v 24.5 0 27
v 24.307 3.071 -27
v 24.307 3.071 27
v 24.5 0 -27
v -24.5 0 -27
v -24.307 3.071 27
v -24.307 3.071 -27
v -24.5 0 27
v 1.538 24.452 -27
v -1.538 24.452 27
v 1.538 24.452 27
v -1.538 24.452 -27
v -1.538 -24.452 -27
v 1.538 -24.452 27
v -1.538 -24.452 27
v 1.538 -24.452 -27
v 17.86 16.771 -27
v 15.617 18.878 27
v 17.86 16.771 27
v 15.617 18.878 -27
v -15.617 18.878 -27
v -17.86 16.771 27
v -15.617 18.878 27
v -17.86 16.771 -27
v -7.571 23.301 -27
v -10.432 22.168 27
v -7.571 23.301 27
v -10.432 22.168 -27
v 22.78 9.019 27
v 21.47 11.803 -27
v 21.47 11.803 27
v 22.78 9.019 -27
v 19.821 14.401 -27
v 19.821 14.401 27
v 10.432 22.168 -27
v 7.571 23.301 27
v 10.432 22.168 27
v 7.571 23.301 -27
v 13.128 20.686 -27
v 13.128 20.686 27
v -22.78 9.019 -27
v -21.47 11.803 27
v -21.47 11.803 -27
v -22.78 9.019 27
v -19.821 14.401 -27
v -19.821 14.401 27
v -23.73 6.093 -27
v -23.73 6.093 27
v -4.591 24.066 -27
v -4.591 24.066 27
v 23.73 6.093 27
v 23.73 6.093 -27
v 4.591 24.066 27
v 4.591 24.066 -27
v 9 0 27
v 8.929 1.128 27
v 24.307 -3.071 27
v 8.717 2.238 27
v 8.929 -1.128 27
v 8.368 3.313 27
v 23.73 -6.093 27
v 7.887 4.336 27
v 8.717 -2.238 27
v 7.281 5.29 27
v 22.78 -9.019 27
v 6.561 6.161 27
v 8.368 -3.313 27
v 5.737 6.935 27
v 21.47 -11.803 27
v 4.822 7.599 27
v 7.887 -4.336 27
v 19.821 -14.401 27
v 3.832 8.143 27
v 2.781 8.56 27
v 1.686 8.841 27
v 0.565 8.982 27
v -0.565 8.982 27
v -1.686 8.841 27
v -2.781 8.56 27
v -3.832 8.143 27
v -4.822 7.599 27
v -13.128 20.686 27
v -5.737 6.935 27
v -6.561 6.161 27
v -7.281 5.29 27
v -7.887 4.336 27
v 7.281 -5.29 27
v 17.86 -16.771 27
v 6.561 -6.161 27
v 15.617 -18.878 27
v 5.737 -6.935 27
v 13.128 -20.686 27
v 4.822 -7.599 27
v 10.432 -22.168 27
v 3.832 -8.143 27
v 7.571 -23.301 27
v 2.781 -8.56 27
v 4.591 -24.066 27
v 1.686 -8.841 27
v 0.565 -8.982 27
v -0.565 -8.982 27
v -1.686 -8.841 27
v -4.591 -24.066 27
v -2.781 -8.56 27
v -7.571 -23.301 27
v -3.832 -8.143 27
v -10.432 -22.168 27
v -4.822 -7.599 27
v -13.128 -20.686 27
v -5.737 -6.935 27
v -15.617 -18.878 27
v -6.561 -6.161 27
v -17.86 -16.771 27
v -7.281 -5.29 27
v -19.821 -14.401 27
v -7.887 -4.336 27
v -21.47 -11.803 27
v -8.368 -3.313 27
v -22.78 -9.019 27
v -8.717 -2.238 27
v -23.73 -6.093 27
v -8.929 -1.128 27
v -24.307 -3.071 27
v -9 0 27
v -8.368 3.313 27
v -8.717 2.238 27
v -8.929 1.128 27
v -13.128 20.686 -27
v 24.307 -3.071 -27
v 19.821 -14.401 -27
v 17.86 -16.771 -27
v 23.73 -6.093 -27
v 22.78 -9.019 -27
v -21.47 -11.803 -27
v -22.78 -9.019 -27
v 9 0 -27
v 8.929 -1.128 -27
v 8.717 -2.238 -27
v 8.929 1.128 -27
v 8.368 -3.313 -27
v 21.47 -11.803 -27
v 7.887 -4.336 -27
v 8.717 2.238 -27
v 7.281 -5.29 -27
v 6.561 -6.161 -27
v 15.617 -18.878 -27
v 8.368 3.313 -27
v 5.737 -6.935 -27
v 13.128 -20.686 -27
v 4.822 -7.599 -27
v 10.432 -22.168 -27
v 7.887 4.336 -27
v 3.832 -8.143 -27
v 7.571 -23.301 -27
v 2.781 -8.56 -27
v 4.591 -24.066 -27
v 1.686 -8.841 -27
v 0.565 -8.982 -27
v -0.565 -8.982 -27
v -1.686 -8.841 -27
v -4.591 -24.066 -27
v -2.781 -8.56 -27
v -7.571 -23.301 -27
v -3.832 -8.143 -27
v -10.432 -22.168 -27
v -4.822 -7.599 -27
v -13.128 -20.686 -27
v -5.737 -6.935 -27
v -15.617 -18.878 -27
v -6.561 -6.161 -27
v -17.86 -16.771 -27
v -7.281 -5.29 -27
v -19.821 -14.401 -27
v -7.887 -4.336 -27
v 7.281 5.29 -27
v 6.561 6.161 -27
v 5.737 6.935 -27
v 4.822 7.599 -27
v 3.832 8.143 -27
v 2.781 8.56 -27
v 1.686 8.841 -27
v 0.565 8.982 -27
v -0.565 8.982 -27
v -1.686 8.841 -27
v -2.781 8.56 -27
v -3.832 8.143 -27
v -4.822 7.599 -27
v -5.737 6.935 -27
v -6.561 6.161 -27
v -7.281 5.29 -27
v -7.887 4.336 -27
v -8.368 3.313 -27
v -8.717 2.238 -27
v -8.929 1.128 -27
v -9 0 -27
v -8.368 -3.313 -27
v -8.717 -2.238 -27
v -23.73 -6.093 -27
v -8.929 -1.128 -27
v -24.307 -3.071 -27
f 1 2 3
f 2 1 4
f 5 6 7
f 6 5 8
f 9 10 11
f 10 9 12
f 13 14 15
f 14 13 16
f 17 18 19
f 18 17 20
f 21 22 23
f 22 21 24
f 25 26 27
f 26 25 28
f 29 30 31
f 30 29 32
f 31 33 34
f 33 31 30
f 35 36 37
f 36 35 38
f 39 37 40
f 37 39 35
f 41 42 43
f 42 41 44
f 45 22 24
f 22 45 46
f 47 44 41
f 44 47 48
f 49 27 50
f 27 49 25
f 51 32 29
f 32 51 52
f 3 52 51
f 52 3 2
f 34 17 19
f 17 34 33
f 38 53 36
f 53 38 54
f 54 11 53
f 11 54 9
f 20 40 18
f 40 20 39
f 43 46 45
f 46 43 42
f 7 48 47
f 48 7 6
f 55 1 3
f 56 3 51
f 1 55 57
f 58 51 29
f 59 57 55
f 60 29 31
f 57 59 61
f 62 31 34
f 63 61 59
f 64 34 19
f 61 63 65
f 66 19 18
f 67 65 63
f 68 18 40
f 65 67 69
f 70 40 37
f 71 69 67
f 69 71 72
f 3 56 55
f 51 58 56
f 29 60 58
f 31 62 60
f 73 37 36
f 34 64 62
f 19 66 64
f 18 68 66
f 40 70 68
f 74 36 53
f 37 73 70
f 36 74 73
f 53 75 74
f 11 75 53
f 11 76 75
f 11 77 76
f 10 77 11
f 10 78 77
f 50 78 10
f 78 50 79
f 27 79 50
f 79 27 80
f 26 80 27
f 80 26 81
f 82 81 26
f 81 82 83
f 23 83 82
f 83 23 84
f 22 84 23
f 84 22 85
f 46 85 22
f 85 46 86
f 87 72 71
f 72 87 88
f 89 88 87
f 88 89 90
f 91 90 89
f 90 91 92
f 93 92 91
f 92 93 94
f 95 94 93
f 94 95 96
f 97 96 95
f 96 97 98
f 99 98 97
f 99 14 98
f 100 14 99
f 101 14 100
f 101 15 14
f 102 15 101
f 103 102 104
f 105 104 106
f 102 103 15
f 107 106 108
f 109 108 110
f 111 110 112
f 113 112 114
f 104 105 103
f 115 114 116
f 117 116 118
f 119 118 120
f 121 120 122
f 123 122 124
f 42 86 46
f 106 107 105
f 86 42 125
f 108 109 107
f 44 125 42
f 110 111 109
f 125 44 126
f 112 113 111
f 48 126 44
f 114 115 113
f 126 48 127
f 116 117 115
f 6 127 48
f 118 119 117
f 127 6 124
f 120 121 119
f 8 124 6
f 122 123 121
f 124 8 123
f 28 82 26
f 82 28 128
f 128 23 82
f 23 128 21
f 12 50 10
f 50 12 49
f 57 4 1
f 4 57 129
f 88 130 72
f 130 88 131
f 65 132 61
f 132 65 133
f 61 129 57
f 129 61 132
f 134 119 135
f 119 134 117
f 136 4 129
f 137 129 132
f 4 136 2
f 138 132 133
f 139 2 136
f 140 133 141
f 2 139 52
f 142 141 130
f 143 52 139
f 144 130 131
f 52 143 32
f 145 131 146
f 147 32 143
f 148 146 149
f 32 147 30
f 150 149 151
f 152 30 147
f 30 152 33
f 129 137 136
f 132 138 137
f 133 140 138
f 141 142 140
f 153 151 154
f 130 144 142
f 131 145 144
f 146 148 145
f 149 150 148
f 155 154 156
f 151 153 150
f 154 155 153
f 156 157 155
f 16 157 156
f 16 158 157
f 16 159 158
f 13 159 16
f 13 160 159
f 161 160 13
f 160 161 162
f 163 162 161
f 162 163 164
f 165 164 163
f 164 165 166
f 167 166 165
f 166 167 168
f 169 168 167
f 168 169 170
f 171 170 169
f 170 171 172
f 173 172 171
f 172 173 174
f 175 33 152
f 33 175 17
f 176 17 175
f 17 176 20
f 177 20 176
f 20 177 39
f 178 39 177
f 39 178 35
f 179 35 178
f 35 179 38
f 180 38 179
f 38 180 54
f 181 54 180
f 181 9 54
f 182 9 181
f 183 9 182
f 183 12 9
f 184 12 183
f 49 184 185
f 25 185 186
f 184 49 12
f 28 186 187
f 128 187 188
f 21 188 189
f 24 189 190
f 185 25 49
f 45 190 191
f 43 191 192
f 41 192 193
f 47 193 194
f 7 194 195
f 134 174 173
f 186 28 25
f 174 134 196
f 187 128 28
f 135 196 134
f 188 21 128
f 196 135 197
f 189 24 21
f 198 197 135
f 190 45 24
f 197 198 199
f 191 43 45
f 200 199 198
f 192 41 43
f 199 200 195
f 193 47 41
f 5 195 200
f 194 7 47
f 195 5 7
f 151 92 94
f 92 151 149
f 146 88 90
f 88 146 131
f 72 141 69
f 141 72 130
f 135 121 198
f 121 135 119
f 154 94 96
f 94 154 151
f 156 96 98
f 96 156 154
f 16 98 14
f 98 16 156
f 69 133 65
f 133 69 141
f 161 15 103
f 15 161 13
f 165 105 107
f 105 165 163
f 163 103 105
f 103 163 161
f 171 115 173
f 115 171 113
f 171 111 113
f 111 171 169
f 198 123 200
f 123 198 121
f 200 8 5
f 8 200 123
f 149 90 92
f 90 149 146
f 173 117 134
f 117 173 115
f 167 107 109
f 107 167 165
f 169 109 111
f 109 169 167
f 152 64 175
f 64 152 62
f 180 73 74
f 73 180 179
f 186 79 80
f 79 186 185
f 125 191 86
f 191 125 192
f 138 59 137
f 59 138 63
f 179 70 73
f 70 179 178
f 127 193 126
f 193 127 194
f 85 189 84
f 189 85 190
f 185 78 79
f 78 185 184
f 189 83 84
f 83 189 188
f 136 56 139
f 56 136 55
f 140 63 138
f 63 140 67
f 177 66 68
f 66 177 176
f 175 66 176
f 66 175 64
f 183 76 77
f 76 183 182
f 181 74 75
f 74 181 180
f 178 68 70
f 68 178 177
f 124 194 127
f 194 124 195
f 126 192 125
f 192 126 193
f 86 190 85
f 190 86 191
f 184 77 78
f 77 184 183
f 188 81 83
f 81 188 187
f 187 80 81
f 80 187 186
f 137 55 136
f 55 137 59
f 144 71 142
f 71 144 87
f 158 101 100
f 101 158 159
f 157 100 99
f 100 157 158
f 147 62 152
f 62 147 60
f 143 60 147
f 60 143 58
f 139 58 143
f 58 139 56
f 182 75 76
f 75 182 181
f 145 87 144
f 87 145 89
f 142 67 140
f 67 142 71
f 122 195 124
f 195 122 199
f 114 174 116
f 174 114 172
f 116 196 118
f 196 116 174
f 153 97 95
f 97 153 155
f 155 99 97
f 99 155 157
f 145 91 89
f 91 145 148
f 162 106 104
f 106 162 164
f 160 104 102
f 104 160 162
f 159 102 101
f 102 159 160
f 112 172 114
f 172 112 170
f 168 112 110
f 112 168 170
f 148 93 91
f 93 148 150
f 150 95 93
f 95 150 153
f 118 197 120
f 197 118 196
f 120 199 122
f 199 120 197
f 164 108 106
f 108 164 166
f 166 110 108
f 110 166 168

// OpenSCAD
$fn = 50;


difference() {
	union() {
		translate(v = [0, 0, -27.0000000000]) {
			cylinder(h = 54, r = 24.5000000000);
		}
	}
	union() {
		translate(v = [0, 0, -100.0000000000]) {
			cylinder(h = 200, r = 9);
		}
	}
}
